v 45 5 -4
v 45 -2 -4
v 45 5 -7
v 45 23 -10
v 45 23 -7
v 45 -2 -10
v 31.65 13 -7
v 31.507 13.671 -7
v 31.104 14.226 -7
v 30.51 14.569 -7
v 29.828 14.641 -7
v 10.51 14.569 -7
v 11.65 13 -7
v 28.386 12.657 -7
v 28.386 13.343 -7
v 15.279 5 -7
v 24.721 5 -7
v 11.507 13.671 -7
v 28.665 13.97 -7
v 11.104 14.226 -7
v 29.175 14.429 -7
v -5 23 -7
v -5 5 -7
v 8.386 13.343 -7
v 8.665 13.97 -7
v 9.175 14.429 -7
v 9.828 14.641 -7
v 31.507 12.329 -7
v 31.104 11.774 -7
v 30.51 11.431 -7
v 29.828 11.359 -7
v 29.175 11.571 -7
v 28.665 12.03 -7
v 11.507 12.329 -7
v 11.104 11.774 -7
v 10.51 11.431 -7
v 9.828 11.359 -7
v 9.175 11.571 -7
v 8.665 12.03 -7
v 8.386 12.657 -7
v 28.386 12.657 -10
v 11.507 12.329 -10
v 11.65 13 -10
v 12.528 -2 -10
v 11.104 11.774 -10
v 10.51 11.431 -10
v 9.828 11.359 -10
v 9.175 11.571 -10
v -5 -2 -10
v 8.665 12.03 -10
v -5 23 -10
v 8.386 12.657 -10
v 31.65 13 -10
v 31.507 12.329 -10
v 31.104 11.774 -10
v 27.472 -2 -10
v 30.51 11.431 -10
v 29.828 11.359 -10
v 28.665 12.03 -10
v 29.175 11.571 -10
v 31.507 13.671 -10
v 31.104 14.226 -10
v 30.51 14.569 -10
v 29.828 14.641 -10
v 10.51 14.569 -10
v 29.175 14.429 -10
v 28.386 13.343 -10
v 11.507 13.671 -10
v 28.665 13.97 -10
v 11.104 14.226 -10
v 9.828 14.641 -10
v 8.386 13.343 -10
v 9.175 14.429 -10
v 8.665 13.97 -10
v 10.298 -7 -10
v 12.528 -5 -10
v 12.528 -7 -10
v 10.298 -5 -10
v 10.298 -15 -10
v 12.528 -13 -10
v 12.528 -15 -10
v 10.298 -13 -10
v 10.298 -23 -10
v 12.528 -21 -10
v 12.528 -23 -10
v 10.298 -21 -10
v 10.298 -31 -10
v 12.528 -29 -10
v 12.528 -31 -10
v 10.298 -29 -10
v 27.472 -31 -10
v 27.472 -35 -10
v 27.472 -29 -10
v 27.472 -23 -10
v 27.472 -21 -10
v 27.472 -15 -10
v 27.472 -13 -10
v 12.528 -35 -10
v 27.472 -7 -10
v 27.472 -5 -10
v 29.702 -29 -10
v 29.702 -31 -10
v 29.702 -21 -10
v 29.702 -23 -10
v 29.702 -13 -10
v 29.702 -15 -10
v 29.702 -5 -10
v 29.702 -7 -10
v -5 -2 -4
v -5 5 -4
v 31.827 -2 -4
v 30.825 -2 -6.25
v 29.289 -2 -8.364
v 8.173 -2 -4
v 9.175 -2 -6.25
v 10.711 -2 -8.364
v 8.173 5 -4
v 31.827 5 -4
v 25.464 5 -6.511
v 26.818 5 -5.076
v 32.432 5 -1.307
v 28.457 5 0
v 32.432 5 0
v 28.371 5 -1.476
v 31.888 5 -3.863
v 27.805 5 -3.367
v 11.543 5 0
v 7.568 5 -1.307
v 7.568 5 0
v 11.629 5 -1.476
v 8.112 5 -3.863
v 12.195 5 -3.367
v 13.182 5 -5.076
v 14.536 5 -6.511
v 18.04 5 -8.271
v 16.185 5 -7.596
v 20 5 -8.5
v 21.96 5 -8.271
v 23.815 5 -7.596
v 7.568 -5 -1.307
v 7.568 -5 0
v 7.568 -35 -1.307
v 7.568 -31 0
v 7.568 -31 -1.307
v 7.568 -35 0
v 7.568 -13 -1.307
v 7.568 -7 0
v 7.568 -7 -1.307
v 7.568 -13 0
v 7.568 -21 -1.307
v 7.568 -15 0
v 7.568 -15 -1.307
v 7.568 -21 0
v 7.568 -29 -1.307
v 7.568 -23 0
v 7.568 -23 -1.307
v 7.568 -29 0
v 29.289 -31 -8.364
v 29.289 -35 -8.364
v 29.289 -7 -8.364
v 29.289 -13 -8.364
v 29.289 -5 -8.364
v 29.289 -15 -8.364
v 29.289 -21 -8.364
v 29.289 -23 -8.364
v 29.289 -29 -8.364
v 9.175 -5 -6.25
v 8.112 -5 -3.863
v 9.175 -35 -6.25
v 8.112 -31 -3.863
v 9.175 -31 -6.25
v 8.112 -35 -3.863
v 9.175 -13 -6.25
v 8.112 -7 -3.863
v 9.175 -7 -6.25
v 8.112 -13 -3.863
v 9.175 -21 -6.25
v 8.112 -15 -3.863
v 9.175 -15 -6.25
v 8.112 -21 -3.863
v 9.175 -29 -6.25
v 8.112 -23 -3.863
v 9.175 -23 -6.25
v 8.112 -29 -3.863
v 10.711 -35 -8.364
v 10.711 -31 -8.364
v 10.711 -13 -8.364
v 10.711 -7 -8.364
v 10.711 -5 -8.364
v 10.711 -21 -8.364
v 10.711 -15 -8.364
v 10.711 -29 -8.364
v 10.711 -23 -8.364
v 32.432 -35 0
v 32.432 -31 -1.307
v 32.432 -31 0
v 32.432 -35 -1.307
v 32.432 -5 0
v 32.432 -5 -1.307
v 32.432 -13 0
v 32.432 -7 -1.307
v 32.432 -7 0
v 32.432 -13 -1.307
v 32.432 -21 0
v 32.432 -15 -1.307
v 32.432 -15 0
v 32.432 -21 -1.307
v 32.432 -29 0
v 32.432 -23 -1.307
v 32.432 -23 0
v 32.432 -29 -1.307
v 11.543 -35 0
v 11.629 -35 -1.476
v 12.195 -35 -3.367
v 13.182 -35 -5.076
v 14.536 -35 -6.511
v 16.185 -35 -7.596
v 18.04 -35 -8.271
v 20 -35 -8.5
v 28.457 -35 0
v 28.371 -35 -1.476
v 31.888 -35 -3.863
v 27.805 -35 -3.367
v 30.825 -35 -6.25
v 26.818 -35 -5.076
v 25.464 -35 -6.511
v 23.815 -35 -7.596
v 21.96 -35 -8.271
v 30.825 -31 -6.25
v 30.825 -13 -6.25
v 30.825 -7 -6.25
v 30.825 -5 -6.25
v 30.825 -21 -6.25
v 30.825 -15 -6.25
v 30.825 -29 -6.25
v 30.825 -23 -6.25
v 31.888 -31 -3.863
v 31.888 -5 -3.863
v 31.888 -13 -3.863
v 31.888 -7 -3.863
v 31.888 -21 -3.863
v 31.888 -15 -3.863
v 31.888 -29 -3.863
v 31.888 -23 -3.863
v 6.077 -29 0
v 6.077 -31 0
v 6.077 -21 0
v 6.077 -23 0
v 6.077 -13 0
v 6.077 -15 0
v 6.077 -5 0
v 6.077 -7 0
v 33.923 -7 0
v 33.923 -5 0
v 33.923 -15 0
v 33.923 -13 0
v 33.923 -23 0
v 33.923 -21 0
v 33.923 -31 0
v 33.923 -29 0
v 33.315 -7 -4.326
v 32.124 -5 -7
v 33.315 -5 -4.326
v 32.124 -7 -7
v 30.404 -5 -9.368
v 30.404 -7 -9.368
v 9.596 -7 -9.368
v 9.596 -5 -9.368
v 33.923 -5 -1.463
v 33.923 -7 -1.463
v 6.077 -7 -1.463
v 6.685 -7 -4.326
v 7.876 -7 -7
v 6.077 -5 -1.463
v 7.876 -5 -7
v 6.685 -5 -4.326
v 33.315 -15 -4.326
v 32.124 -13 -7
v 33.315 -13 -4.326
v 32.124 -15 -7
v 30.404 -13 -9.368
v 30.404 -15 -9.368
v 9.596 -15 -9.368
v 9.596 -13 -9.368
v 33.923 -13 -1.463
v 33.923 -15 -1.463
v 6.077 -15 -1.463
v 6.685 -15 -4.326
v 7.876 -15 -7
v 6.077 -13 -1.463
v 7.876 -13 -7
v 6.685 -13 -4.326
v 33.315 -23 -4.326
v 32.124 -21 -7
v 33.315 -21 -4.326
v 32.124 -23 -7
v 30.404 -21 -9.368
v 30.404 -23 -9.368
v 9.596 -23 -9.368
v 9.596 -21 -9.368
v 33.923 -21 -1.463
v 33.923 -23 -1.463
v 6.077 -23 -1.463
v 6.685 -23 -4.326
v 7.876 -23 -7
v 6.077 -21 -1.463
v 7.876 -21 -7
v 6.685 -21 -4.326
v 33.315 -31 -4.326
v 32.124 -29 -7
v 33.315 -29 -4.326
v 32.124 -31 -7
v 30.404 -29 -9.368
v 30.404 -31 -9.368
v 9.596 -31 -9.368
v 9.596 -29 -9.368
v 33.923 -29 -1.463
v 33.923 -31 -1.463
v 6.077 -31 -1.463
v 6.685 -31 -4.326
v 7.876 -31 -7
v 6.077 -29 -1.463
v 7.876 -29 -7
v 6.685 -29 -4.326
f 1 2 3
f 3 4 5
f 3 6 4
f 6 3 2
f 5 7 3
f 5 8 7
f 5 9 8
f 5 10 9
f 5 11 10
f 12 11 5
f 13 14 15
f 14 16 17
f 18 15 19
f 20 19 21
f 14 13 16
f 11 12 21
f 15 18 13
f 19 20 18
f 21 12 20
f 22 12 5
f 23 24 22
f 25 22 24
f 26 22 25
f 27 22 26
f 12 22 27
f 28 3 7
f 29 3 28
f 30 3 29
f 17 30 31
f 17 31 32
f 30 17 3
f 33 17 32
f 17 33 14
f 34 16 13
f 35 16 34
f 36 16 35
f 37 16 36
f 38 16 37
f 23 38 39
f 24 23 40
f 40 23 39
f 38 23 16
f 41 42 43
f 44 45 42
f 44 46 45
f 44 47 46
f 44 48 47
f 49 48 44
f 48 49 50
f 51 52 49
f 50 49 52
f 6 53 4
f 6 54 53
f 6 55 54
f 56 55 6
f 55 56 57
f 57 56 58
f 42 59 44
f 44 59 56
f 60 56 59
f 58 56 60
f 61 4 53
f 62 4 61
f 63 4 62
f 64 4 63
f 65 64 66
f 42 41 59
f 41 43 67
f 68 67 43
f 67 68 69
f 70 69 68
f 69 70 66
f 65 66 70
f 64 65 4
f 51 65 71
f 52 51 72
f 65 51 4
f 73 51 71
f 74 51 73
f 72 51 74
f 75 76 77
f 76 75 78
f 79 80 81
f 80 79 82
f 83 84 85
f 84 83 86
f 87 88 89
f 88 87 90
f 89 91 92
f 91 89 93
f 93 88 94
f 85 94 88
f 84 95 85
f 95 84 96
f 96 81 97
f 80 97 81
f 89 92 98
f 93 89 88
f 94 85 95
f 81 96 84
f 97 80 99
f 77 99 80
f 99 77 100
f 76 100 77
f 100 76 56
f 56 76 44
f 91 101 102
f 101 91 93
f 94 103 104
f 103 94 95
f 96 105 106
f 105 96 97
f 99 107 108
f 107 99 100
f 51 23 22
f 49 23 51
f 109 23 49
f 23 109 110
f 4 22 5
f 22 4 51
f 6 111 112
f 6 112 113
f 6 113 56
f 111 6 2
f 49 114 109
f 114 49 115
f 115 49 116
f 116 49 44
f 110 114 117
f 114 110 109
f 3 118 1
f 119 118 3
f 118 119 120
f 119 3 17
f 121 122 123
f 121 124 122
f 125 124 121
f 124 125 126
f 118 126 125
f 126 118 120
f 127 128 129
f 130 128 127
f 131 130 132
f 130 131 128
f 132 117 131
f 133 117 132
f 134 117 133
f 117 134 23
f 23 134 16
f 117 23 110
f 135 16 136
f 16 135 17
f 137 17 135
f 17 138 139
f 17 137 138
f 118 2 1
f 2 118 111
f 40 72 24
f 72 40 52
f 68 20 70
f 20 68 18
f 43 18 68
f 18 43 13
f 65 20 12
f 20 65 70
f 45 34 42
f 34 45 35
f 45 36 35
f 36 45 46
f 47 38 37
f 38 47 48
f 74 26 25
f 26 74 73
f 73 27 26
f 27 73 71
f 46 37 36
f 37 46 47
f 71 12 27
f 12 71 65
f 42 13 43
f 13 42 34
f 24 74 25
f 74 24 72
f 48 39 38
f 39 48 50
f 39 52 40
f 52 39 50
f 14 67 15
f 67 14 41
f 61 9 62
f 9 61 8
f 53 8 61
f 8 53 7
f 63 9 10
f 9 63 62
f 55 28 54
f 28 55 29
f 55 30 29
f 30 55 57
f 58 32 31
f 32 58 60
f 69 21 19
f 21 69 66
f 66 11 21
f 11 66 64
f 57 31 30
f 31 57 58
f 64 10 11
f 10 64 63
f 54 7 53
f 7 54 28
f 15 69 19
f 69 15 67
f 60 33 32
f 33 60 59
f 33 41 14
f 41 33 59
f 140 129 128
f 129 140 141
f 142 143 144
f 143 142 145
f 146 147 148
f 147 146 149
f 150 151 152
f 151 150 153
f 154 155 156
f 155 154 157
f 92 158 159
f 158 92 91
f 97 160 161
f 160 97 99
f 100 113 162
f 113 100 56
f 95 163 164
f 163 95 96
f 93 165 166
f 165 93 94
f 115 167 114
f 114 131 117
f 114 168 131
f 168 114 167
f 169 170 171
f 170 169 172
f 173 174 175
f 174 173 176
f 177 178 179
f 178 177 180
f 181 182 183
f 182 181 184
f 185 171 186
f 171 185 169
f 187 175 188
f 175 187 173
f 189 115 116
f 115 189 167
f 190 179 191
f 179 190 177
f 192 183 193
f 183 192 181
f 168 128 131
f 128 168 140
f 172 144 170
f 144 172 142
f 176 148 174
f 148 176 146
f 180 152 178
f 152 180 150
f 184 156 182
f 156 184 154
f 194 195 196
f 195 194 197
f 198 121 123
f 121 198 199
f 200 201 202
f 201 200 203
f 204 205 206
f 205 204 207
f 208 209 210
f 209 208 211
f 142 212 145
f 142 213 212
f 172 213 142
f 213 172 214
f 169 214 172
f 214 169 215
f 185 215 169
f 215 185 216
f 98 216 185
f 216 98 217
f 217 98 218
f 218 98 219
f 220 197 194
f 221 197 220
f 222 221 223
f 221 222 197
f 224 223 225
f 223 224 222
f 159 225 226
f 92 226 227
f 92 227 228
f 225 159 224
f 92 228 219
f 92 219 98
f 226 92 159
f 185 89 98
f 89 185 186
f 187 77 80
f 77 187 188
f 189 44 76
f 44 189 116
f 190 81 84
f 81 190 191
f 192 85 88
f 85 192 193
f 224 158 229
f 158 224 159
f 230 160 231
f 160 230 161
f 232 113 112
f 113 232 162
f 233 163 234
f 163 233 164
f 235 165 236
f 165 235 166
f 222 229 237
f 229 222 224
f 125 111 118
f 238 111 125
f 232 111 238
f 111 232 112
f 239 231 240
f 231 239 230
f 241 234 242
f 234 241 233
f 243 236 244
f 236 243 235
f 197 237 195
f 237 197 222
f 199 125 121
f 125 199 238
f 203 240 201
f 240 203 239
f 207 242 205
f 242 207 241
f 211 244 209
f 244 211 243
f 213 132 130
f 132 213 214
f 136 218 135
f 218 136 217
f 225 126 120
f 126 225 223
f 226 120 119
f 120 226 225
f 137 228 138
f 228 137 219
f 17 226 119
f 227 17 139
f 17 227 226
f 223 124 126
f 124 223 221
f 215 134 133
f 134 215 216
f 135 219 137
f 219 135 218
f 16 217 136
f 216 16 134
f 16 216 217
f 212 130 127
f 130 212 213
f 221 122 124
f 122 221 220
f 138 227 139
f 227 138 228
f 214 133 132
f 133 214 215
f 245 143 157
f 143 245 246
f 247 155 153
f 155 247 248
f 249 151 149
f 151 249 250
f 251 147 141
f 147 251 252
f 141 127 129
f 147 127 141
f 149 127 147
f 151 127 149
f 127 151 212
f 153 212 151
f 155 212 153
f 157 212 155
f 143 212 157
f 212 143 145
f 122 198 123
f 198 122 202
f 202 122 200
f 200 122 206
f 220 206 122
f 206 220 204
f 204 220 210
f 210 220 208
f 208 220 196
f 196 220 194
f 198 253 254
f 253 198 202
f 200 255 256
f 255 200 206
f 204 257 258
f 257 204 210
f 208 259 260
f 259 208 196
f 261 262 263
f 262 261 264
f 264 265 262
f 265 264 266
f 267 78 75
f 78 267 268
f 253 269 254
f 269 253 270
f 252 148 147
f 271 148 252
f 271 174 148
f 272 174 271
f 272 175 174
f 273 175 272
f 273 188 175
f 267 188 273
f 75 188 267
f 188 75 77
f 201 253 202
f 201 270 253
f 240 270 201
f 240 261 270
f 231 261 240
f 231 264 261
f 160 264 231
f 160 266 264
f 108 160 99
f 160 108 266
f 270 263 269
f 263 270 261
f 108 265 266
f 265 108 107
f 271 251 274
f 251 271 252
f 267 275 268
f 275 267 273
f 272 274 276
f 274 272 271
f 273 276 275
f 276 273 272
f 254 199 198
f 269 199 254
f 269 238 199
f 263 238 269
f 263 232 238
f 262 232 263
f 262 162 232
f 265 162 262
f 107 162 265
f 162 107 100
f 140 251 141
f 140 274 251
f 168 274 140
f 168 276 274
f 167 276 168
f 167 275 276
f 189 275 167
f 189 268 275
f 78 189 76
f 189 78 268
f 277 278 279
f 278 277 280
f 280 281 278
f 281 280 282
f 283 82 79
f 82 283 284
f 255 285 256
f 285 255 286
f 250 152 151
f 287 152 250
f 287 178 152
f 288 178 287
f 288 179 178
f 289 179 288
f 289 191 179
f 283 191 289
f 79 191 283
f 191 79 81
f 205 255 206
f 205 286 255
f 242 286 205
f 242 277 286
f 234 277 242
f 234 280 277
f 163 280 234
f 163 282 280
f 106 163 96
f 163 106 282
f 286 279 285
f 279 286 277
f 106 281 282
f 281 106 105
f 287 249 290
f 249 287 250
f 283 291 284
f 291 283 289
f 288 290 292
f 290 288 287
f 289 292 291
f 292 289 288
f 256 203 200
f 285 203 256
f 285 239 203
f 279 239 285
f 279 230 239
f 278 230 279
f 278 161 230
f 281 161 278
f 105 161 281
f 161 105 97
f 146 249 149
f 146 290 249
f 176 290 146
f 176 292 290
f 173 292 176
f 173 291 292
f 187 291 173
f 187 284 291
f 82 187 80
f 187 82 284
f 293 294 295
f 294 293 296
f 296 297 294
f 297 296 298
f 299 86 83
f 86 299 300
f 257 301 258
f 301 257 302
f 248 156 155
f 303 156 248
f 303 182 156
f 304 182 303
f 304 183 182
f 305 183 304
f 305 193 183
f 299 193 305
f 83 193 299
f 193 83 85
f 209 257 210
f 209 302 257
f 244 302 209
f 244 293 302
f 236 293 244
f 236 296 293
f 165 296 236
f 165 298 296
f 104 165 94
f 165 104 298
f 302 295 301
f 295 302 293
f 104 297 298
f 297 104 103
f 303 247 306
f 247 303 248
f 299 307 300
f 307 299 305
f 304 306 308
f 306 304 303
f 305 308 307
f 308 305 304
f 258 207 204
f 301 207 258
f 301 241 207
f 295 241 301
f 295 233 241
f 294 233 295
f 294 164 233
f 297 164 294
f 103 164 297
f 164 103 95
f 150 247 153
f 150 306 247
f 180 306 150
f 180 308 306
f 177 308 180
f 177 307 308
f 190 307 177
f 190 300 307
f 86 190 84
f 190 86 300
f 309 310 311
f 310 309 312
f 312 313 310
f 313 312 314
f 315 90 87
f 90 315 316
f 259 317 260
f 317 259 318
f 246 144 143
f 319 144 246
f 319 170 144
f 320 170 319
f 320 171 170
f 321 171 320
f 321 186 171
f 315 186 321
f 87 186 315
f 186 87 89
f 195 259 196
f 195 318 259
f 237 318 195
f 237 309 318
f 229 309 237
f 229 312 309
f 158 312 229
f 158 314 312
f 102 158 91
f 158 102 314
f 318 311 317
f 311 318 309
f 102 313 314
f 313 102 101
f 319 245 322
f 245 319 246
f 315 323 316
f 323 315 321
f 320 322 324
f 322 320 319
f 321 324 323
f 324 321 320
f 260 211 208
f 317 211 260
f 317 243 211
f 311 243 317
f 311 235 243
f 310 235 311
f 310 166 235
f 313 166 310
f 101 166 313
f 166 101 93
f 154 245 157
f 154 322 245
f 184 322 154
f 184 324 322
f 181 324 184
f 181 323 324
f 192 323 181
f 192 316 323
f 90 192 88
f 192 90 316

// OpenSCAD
// file: ../lib/common_wire_mount.scad
/* Common code for wiring mounts. See top_wire_mount.scad and 
 * bottom_wire_mount.scad for the model.
 * Copyright 2021 Alex Volkov <alex@flamy.ca>
 * License: Attribution-ShareAlike 4.0 International (CC BY-SA)
 * https://creativecommons.org/licenses/by-sa/4.0/
 *
 * Version 1.0 2021-04-10 Initial publication
 */


m3_bolt_d = 3.3;

module cable_mount(cable_len, out_d, in_d){
    rotate([0, 90, 0 ]){
    difference(){
        cylinder(d=out_d, h=cable_len);
        cylinder(d=in_d, h=cable_len);
        translate([-out_d/2, 0, cable_len/2])
            cube([out_d, out_d, cable_len], center=true);
        }
    }
}


module plate_mount_top(y_offset, thickness=2){
    difference(){
        translate([-5, 0, 0]){
            cube([50, 25, thickness]);
            cube([15, 7, thickness*2]);
            translate([35, 0, 0, ])
                cube([15, 7, thickness*2]);
        }
        translate([10, y_offset, 0])
            cylinder(d=m3_bolt_d, h=10, $fn=15);
        translate([30, y_offset, 0])
            cylinder(d=m3_bolt_d, h=10, $fn=15);
    }
    
}

module plate_mount(y_offset, thickness=2){
    difference(){
        translate([-5, 0, 0]) cube([50, 24, thickness]);
        translate([10, y_offset, 0])
            cylinder(d=m3_bolt_d, h=10, $fn=15);
        translate([30, y_offset, 0])
            cylinder(d=m3_bolt_d, h=10, $fn=15);
    }
    
}
// main file
/* Top wire mount for MKS GEN 1.4 for wiring heated bed and power cables
 * Copyright 2021 Alex Volkov <alex@flamy.ca>
 * License: Attribution-ShareAlike 4.0 International (CC BY-SA)
 * https://creativecommons.org/licenses/by-sa/4.0/
 *
 * Version 1.0 2021-04-10 Initial publication
 */

include <../lib/common_wire_mount.scad>


module top_wire_holder(out_d, in_d){
    translate([0,-2,-10]){
        difference() {
            plate_mount_top(15, 3);
            translate([20, 7, 10]){
                rotate([90, 0, 0])
                cylinder(d=20, h=8);
            }
        }
    }
    difference(){
        union(){
            translate([20, -35, 0])
                rotate([0, 0, 90])
                    cable_mount(40, out_d, in_d);
            rotate([0,0,270]){
                for(i=[5:8:36]){
                    translate([i, 20, 0])
                        cable_mount(2, out_d + 3, in_d);
                }
            }
        }
        translate([0,-75, -20])
            cube([40, 80, 10]);
    }
}

top_wire_holder(out_d=25, in_d=17);
